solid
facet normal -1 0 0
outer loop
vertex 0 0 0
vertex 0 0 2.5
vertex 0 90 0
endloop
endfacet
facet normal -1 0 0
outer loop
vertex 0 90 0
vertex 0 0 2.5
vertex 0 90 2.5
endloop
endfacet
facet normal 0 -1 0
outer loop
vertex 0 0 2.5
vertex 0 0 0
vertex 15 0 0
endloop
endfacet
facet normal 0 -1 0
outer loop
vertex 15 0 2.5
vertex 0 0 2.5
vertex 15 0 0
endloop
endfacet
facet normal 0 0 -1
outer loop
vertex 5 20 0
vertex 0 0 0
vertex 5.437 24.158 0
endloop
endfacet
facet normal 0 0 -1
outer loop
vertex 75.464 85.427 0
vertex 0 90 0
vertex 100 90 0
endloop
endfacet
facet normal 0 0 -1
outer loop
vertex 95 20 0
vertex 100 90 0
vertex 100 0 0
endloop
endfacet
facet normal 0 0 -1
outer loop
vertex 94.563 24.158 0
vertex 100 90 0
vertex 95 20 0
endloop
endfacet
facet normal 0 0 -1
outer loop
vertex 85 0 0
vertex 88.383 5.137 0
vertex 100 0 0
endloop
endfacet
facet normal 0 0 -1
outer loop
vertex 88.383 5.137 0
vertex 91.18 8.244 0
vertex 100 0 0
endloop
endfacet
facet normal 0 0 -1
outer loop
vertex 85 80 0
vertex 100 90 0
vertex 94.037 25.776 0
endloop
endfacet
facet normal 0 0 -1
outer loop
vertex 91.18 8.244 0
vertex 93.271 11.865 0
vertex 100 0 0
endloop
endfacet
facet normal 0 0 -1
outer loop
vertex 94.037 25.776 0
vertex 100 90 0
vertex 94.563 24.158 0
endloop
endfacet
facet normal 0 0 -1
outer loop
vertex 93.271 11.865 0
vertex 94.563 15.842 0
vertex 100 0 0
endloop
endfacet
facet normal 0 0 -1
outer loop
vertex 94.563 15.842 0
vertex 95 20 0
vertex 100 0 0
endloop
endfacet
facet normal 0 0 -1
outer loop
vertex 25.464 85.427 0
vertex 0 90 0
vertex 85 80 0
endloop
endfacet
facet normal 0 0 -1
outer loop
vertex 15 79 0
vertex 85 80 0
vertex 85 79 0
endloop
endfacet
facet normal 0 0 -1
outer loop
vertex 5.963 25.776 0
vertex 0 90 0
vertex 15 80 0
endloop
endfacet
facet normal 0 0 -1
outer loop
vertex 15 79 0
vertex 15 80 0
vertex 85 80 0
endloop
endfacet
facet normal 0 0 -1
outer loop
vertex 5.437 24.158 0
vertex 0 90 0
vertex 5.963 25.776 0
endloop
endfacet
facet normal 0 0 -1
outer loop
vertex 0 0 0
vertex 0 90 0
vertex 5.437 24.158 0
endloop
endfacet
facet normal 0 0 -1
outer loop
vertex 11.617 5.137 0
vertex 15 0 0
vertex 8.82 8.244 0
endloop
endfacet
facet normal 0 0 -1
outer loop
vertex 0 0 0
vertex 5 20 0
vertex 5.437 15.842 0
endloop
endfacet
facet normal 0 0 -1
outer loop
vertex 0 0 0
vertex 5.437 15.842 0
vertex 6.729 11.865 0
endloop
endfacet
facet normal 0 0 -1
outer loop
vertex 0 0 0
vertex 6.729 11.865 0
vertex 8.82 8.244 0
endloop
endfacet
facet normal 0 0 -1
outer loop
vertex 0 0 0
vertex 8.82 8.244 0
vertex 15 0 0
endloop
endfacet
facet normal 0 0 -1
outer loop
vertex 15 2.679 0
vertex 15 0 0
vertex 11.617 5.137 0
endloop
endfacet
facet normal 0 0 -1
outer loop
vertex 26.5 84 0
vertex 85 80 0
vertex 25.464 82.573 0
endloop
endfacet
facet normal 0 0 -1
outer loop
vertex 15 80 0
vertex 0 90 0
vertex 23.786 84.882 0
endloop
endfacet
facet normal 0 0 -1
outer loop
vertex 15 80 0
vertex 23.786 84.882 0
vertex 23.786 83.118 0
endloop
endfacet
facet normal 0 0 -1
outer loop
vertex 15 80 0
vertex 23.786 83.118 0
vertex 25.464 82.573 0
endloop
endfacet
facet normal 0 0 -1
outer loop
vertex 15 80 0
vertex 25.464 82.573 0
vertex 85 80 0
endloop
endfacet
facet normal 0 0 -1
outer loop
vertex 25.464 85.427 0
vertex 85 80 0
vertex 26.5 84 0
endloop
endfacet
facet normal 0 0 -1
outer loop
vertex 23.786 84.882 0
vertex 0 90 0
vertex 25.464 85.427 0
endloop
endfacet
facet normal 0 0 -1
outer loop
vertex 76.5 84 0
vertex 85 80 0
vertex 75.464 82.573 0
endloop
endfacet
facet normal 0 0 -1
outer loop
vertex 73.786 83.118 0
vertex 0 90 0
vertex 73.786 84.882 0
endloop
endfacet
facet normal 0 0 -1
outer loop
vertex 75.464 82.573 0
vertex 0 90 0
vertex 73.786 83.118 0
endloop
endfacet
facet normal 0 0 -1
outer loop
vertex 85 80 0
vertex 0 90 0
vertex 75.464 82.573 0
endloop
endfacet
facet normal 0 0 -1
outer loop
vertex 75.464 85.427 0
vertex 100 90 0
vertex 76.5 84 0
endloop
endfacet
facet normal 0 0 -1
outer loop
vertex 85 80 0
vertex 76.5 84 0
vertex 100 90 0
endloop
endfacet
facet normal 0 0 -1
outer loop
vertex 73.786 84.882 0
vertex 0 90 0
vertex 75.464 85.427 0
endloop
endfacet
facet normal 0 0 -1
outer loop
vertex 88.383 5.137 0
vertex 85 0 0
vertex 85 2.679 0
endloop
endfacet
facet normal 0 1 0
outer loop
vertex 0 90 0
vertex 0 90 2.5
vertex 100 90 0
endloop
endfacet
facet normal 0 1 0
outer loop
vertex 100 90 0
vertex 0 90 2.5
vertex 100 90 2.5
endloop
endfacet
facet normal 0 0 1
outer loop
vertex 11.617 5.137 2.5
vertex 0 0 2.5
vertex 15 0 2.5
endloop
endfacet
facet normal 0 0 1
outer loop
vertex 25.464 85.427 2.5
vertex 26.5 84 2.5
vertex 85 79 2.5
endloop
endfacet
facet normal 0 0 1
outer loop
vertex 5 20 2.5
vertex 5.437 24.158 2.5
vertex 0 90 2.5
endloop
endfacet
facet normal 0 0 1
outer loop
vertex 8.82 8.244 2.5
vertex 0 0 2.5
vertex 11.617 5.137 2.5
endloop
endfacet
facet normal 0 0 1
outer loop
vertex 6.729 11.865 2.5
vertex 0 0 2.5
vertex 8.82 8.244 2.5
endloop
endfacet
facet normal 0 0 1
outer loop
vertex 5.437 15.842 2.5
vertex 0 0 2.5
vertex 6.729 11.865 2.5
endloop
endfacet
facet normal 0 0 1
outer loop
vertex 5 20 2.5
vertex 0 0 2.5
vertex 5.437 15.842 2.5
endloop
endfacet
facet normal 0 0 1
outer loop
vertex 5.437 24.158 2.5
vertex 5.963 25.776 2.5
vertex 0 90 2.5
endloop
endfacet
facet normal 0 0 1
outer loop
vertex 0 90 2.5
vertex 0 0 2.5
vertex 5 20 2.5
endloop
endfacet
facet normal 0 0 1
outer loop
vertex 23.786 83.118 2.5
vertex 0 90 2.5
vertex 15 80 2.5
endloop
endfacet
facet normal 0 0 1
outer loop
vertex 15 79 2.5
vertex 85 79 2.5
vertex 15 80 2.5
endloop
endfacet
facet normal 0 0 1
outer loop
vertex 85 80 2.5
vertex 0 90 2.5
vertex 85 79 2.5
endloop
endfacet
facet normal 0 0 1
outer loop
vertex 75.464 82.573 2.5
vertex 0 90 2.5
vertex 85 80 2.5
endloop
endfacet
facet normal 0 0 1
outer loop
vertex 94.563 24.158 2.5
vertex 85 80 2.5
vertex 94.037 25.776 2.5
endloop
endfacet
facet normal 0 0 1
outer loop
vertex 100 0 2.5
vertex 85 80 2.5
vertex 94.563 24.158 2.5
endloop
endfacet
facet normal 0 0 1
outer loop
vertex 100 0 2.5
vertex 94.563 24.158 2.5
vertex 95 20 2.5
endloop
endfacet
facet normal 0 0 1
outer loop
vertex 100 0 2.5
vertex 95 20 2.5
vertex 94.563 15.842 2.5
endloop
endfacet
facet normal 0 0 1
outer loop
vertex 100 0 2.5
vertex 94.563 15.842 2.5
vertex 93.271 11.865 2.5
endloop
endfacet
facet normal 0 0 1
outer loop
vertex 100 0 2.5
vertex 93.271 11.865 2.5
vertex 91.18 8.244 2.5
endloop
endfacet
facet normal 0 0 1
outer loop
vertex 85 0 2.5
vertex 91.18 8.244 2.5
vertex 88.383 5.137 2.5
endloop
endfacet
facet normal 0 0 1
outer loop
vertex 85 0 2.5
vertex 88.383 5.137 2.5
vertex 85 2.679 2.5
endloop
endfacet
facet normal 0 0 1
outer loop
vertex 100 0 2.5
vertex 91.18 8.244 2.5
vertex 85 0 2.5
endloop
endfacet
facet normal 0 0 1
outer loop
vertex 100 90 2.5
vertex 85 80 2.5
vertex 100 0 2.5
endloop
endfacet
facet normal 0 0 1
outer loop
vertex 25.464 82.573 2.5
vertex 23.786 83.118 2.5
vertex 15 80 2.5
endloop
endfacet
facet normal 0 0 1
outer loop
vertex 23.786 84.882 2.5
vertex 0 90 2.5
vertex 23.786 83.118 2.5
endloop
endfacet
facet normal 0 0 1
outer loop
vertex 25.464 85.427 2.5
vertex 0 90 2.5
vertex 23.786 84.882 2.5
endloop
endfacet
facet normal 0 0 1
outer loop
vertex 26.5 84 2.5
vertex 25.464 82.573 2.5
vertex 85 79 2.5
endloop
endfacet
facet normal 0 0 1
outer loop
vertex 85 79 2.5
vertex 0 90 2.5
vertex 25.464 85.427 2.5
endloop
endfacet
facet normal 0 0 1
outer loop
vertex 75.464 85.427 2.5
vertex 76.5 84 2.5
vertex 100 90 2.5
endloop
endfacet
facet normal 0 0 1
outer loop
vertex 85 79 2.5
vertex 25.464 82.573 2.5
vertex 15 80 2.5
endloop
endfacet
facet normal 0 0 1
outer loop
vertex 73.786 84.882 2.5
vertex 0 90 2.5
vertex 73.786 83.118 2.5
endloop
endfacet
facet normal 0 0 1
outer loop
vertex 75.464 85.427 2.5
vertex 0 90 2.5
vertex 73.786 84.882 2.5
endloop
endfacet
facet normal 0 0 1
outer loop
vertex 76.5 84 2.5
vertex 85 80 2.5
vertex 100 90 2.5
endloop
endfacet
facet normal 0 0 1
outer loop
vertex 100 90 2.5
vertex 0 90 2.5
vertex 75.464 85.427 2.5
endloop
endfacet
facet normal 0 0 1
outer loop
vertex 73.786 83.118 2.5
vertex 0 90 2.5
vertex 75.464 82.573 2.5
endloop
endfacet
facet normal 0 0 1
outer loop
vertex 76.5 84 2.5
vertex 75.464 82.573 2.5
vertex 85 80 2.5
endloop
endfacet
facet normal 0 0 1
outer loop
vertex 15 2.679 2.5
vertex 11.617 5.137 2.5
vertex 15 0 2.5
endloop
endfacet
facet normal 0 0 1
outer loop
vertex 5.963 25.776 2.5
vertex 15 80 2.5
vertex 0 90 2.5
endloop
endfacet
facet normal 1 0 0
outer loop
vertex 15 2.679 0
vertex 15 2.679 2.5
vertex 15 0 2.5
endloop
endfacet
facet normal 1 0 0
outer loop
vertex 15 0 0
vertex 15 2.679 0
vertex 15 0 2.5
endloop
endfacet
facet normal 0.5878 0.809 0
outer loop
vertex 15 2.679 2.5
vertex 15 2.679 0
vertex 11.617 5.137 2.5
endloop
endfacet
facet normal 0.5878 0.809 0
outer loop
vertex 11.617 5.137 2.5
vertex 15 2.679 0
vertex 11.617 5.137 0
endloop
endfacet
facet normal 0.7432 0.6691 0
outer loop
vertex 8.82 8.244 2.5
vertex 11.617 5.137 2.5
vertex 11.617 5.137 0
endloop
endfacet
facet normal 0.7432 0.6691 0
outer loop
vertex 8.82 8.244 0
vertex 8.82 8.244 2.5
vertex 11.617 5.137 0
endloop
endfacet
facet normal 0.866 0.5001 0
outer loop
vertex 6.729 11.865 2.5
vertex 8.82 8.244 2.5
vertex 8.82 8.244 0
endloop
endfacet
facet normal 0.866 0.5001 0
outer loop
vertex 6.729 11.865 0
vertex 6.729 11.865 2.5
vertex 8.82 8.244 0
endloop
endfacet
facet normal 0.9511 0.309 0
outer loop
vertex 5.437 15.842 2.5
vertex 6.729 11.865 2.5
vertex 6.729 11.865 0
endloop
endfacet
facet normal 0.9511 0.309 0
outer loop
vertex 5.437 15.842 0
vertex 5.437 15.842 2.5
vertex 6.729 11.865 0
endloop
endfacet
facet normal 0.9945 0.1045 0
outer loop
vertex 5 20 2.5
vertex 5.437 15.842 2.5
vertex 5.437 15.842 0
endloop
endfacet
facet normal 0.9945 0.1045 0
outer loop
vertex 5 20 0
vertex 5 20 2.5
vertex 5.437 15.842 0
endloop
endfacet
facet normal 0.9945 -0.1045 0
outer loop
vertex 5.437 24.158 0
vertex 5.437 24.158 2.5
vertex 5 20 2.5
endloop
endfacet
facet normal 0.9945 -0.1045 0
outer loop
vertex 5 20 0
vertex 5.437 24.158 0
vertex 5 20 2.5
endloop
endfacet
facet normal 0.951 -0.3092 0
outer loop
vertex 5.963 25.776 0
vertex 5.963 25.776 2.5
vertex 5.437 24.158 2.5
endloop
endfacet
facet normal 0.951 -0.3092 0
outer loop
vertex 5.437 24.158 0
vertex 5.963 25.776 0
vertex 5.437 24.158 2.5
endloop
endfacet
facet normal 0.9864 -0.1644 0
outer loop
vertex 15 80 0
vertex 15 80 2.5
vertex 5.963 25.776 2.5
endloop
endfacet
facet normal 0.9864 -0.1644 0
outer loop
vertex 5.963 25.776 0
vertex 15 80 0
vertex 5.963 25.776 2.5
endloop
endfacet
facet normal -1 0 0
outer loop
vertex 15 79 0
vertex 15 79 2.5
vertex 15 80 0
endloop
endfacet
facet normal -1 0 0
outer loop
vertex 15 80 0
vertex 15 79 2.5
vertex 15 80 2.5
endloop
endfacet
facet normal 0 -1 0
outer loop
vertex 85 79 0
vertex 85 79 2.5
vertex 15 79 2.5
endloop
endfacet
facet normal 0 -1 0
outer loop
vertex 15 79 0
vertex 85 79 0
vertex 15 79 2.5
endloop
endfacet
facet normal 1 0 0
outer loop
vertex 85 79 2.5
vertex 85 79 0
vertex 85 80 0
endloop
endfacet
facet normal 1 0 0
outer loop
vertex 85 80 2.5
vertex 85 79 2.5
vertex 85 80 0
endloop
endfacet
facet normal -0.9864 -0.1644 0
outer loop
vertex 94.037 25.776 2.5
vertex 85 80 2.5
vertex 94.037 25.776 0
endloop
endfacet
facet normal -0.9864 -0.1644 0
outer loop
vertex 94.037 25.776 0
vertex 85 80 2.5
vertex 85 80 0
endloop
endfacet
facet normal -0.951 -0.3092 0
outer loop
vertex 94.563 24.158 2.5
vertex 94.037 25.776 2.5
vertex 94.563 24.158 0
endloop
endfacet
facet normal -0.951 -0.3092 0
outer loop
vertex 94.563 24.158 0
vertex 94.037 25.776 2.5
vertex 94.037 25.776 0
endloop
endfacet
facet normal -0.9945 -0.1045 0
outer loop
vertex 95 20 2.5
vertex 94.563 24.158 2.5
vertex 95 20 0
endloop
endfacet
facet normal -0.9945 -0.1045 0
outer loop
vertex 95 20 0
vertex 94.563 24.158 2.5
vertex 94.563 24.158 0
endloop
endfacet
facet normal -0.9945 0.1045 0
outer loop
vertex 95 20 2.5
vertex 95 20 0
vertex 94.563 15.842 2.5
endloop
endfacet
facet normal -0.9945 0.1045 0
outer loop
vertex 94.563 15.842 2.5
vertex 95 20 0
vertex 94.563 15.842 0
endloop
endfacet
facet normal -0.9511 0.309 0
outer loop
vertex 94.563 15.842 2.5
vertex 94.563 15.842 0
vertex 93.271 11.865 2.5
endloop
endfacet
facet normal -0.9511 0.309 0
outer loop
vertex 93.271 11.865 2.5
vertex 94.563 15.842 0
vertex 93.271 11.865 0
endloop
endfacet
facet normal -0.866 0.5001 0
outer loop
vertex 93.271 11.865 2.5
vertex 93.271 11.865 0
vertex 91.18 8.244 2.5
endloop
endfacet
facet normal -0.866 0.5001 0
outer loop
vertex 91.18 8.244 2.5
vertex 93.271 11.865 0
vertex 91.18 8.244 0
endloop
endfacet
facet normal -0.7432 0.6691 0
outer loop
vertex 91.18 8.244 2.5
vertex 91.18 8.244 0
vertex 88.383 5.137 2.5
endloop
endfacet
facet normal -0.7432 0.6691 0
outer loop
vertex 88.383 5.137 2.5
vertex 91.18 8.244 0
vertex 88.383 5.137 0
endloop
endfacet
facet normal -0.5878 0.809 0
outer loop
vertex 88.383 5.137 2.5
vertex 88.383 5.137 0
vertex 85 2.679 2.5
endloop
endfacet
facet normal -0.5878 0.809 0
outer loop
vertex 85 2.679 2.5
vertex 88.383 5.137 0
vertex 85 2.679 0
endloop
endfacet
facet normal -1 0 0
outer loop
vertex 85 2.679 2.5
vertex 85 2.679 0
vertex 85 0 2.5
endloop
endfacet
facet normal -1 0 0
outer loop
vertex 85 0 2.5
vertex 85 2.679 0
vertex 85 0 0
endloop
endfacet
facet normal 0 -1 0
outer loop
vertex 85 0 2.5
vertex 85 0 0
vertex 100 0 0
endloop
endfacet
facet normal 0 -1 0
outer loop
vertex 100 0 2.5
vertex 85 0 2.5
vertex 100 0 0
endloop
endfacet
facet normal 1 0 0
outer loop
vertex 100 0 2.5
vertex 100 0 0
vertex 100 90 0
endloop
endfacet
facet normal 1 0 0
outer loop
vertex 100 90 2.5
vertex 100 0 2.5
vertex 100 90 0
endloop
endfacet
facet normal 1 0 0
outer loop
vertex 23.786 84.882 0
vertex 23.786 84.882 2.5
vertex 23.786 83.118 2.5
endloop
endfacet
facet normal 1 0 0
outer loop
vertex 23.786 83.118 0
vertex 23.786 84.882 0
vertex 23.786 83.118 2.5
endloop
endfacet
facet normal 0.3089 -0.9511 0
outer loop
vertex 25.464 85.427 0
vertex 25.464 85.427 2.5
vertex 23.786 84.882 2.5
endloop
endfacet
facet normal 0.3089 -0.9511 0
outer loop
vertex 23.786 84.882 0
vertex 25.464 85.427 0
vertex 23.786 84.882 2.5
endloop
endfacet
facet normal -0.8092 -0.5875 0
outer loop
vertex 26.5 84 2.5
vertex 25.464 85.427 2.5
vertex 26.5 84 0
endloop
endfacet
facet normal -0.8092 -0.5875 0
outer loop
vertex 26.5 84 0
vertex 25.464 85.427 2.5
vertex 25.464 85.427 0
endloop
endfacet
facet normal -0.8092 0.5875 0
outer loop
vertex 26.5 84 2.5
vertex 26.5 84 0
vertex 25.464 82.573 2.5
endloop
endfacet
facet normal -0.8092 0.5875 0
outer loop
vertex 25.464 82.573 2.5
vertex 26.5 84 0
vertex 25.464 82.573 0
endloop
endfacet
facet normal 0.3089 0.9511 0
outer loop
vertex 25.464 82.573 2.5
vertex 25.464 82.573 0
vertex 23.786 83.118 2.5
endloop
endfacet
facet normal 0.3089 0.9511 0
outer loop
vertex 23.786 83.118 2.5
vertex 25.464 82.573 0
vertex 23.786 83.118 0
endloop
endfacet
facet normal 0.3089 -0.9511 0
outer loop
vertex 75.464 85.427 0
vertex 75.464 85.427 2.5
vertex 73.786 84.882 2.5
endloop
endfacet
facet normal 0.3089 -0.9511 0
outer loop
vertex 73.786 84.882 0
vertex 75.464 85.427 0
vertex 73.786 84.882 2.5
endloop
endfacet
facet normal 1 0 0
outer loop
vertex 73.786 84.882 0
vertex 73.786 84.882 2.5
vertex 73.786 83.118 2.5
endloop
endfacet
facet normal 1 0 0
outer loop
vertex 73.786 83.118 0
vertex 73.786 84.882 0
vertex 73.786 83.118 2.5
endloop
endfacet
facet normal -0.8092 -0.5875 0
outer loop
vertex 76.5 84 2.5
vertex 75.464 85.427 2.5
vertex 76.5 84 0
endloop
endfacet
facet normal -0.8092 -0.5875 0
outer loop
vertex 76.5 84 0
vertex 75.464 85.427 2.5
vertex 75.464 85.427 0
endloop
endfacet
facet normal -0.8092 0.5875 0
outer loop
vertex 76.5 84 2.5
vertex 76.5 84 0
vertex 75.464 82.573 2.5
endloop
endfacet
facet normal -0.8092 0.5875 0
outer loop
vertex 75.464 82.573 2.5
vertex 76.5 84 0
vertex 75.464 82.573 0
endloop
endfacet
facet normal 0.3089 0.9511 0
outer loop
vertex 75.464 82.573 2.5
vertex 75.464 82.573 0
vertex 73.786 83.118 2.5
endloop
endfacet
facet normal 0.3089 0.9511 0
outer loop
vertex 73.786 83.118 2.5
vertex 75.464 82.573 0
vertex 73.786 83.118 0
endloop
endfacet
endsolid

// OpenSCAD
union(){
	difference(){
		cube([100,90,2.5]);
		translate([15,-1,-.5])
		cube([70,80,6]);
	
		translate([25,20,-.5])
		cylinder(h=6, d=40);
		translate([75,20,-.5])
		cylinder(h=6, d=40);

		polyhedron(
			points=[ [5,20,-.5], [5,20,5.5], [15,20,-.5], [15,20,5.5], [15,80,-.5], [15,80,5.5] ],
			faces=[ [0,1,2], [1,3,2], [0,5,1], [5,0,4], [2,3,4], [3,5,4], [0,2,4], [1,5,3] ]
		);

		polyhedron(
			points=[ [85,20,-.5], [85,20,5.5], [95,20,-.5], [95,20,5.5], [85,80,-.5], [85,80,5.5] ],
			faces=[ [0,1,2], [1,3,2], [0,5,1], [5,0,4], [2,3,4], [3,5,4], [0,2,4], [1,5,3] ]
		);

		translate([25,84,-.5])
		cylinder(d=3, h=6);
		translate([75,84,-.5])
		cylinder(d=3, h=6);
	}

}
